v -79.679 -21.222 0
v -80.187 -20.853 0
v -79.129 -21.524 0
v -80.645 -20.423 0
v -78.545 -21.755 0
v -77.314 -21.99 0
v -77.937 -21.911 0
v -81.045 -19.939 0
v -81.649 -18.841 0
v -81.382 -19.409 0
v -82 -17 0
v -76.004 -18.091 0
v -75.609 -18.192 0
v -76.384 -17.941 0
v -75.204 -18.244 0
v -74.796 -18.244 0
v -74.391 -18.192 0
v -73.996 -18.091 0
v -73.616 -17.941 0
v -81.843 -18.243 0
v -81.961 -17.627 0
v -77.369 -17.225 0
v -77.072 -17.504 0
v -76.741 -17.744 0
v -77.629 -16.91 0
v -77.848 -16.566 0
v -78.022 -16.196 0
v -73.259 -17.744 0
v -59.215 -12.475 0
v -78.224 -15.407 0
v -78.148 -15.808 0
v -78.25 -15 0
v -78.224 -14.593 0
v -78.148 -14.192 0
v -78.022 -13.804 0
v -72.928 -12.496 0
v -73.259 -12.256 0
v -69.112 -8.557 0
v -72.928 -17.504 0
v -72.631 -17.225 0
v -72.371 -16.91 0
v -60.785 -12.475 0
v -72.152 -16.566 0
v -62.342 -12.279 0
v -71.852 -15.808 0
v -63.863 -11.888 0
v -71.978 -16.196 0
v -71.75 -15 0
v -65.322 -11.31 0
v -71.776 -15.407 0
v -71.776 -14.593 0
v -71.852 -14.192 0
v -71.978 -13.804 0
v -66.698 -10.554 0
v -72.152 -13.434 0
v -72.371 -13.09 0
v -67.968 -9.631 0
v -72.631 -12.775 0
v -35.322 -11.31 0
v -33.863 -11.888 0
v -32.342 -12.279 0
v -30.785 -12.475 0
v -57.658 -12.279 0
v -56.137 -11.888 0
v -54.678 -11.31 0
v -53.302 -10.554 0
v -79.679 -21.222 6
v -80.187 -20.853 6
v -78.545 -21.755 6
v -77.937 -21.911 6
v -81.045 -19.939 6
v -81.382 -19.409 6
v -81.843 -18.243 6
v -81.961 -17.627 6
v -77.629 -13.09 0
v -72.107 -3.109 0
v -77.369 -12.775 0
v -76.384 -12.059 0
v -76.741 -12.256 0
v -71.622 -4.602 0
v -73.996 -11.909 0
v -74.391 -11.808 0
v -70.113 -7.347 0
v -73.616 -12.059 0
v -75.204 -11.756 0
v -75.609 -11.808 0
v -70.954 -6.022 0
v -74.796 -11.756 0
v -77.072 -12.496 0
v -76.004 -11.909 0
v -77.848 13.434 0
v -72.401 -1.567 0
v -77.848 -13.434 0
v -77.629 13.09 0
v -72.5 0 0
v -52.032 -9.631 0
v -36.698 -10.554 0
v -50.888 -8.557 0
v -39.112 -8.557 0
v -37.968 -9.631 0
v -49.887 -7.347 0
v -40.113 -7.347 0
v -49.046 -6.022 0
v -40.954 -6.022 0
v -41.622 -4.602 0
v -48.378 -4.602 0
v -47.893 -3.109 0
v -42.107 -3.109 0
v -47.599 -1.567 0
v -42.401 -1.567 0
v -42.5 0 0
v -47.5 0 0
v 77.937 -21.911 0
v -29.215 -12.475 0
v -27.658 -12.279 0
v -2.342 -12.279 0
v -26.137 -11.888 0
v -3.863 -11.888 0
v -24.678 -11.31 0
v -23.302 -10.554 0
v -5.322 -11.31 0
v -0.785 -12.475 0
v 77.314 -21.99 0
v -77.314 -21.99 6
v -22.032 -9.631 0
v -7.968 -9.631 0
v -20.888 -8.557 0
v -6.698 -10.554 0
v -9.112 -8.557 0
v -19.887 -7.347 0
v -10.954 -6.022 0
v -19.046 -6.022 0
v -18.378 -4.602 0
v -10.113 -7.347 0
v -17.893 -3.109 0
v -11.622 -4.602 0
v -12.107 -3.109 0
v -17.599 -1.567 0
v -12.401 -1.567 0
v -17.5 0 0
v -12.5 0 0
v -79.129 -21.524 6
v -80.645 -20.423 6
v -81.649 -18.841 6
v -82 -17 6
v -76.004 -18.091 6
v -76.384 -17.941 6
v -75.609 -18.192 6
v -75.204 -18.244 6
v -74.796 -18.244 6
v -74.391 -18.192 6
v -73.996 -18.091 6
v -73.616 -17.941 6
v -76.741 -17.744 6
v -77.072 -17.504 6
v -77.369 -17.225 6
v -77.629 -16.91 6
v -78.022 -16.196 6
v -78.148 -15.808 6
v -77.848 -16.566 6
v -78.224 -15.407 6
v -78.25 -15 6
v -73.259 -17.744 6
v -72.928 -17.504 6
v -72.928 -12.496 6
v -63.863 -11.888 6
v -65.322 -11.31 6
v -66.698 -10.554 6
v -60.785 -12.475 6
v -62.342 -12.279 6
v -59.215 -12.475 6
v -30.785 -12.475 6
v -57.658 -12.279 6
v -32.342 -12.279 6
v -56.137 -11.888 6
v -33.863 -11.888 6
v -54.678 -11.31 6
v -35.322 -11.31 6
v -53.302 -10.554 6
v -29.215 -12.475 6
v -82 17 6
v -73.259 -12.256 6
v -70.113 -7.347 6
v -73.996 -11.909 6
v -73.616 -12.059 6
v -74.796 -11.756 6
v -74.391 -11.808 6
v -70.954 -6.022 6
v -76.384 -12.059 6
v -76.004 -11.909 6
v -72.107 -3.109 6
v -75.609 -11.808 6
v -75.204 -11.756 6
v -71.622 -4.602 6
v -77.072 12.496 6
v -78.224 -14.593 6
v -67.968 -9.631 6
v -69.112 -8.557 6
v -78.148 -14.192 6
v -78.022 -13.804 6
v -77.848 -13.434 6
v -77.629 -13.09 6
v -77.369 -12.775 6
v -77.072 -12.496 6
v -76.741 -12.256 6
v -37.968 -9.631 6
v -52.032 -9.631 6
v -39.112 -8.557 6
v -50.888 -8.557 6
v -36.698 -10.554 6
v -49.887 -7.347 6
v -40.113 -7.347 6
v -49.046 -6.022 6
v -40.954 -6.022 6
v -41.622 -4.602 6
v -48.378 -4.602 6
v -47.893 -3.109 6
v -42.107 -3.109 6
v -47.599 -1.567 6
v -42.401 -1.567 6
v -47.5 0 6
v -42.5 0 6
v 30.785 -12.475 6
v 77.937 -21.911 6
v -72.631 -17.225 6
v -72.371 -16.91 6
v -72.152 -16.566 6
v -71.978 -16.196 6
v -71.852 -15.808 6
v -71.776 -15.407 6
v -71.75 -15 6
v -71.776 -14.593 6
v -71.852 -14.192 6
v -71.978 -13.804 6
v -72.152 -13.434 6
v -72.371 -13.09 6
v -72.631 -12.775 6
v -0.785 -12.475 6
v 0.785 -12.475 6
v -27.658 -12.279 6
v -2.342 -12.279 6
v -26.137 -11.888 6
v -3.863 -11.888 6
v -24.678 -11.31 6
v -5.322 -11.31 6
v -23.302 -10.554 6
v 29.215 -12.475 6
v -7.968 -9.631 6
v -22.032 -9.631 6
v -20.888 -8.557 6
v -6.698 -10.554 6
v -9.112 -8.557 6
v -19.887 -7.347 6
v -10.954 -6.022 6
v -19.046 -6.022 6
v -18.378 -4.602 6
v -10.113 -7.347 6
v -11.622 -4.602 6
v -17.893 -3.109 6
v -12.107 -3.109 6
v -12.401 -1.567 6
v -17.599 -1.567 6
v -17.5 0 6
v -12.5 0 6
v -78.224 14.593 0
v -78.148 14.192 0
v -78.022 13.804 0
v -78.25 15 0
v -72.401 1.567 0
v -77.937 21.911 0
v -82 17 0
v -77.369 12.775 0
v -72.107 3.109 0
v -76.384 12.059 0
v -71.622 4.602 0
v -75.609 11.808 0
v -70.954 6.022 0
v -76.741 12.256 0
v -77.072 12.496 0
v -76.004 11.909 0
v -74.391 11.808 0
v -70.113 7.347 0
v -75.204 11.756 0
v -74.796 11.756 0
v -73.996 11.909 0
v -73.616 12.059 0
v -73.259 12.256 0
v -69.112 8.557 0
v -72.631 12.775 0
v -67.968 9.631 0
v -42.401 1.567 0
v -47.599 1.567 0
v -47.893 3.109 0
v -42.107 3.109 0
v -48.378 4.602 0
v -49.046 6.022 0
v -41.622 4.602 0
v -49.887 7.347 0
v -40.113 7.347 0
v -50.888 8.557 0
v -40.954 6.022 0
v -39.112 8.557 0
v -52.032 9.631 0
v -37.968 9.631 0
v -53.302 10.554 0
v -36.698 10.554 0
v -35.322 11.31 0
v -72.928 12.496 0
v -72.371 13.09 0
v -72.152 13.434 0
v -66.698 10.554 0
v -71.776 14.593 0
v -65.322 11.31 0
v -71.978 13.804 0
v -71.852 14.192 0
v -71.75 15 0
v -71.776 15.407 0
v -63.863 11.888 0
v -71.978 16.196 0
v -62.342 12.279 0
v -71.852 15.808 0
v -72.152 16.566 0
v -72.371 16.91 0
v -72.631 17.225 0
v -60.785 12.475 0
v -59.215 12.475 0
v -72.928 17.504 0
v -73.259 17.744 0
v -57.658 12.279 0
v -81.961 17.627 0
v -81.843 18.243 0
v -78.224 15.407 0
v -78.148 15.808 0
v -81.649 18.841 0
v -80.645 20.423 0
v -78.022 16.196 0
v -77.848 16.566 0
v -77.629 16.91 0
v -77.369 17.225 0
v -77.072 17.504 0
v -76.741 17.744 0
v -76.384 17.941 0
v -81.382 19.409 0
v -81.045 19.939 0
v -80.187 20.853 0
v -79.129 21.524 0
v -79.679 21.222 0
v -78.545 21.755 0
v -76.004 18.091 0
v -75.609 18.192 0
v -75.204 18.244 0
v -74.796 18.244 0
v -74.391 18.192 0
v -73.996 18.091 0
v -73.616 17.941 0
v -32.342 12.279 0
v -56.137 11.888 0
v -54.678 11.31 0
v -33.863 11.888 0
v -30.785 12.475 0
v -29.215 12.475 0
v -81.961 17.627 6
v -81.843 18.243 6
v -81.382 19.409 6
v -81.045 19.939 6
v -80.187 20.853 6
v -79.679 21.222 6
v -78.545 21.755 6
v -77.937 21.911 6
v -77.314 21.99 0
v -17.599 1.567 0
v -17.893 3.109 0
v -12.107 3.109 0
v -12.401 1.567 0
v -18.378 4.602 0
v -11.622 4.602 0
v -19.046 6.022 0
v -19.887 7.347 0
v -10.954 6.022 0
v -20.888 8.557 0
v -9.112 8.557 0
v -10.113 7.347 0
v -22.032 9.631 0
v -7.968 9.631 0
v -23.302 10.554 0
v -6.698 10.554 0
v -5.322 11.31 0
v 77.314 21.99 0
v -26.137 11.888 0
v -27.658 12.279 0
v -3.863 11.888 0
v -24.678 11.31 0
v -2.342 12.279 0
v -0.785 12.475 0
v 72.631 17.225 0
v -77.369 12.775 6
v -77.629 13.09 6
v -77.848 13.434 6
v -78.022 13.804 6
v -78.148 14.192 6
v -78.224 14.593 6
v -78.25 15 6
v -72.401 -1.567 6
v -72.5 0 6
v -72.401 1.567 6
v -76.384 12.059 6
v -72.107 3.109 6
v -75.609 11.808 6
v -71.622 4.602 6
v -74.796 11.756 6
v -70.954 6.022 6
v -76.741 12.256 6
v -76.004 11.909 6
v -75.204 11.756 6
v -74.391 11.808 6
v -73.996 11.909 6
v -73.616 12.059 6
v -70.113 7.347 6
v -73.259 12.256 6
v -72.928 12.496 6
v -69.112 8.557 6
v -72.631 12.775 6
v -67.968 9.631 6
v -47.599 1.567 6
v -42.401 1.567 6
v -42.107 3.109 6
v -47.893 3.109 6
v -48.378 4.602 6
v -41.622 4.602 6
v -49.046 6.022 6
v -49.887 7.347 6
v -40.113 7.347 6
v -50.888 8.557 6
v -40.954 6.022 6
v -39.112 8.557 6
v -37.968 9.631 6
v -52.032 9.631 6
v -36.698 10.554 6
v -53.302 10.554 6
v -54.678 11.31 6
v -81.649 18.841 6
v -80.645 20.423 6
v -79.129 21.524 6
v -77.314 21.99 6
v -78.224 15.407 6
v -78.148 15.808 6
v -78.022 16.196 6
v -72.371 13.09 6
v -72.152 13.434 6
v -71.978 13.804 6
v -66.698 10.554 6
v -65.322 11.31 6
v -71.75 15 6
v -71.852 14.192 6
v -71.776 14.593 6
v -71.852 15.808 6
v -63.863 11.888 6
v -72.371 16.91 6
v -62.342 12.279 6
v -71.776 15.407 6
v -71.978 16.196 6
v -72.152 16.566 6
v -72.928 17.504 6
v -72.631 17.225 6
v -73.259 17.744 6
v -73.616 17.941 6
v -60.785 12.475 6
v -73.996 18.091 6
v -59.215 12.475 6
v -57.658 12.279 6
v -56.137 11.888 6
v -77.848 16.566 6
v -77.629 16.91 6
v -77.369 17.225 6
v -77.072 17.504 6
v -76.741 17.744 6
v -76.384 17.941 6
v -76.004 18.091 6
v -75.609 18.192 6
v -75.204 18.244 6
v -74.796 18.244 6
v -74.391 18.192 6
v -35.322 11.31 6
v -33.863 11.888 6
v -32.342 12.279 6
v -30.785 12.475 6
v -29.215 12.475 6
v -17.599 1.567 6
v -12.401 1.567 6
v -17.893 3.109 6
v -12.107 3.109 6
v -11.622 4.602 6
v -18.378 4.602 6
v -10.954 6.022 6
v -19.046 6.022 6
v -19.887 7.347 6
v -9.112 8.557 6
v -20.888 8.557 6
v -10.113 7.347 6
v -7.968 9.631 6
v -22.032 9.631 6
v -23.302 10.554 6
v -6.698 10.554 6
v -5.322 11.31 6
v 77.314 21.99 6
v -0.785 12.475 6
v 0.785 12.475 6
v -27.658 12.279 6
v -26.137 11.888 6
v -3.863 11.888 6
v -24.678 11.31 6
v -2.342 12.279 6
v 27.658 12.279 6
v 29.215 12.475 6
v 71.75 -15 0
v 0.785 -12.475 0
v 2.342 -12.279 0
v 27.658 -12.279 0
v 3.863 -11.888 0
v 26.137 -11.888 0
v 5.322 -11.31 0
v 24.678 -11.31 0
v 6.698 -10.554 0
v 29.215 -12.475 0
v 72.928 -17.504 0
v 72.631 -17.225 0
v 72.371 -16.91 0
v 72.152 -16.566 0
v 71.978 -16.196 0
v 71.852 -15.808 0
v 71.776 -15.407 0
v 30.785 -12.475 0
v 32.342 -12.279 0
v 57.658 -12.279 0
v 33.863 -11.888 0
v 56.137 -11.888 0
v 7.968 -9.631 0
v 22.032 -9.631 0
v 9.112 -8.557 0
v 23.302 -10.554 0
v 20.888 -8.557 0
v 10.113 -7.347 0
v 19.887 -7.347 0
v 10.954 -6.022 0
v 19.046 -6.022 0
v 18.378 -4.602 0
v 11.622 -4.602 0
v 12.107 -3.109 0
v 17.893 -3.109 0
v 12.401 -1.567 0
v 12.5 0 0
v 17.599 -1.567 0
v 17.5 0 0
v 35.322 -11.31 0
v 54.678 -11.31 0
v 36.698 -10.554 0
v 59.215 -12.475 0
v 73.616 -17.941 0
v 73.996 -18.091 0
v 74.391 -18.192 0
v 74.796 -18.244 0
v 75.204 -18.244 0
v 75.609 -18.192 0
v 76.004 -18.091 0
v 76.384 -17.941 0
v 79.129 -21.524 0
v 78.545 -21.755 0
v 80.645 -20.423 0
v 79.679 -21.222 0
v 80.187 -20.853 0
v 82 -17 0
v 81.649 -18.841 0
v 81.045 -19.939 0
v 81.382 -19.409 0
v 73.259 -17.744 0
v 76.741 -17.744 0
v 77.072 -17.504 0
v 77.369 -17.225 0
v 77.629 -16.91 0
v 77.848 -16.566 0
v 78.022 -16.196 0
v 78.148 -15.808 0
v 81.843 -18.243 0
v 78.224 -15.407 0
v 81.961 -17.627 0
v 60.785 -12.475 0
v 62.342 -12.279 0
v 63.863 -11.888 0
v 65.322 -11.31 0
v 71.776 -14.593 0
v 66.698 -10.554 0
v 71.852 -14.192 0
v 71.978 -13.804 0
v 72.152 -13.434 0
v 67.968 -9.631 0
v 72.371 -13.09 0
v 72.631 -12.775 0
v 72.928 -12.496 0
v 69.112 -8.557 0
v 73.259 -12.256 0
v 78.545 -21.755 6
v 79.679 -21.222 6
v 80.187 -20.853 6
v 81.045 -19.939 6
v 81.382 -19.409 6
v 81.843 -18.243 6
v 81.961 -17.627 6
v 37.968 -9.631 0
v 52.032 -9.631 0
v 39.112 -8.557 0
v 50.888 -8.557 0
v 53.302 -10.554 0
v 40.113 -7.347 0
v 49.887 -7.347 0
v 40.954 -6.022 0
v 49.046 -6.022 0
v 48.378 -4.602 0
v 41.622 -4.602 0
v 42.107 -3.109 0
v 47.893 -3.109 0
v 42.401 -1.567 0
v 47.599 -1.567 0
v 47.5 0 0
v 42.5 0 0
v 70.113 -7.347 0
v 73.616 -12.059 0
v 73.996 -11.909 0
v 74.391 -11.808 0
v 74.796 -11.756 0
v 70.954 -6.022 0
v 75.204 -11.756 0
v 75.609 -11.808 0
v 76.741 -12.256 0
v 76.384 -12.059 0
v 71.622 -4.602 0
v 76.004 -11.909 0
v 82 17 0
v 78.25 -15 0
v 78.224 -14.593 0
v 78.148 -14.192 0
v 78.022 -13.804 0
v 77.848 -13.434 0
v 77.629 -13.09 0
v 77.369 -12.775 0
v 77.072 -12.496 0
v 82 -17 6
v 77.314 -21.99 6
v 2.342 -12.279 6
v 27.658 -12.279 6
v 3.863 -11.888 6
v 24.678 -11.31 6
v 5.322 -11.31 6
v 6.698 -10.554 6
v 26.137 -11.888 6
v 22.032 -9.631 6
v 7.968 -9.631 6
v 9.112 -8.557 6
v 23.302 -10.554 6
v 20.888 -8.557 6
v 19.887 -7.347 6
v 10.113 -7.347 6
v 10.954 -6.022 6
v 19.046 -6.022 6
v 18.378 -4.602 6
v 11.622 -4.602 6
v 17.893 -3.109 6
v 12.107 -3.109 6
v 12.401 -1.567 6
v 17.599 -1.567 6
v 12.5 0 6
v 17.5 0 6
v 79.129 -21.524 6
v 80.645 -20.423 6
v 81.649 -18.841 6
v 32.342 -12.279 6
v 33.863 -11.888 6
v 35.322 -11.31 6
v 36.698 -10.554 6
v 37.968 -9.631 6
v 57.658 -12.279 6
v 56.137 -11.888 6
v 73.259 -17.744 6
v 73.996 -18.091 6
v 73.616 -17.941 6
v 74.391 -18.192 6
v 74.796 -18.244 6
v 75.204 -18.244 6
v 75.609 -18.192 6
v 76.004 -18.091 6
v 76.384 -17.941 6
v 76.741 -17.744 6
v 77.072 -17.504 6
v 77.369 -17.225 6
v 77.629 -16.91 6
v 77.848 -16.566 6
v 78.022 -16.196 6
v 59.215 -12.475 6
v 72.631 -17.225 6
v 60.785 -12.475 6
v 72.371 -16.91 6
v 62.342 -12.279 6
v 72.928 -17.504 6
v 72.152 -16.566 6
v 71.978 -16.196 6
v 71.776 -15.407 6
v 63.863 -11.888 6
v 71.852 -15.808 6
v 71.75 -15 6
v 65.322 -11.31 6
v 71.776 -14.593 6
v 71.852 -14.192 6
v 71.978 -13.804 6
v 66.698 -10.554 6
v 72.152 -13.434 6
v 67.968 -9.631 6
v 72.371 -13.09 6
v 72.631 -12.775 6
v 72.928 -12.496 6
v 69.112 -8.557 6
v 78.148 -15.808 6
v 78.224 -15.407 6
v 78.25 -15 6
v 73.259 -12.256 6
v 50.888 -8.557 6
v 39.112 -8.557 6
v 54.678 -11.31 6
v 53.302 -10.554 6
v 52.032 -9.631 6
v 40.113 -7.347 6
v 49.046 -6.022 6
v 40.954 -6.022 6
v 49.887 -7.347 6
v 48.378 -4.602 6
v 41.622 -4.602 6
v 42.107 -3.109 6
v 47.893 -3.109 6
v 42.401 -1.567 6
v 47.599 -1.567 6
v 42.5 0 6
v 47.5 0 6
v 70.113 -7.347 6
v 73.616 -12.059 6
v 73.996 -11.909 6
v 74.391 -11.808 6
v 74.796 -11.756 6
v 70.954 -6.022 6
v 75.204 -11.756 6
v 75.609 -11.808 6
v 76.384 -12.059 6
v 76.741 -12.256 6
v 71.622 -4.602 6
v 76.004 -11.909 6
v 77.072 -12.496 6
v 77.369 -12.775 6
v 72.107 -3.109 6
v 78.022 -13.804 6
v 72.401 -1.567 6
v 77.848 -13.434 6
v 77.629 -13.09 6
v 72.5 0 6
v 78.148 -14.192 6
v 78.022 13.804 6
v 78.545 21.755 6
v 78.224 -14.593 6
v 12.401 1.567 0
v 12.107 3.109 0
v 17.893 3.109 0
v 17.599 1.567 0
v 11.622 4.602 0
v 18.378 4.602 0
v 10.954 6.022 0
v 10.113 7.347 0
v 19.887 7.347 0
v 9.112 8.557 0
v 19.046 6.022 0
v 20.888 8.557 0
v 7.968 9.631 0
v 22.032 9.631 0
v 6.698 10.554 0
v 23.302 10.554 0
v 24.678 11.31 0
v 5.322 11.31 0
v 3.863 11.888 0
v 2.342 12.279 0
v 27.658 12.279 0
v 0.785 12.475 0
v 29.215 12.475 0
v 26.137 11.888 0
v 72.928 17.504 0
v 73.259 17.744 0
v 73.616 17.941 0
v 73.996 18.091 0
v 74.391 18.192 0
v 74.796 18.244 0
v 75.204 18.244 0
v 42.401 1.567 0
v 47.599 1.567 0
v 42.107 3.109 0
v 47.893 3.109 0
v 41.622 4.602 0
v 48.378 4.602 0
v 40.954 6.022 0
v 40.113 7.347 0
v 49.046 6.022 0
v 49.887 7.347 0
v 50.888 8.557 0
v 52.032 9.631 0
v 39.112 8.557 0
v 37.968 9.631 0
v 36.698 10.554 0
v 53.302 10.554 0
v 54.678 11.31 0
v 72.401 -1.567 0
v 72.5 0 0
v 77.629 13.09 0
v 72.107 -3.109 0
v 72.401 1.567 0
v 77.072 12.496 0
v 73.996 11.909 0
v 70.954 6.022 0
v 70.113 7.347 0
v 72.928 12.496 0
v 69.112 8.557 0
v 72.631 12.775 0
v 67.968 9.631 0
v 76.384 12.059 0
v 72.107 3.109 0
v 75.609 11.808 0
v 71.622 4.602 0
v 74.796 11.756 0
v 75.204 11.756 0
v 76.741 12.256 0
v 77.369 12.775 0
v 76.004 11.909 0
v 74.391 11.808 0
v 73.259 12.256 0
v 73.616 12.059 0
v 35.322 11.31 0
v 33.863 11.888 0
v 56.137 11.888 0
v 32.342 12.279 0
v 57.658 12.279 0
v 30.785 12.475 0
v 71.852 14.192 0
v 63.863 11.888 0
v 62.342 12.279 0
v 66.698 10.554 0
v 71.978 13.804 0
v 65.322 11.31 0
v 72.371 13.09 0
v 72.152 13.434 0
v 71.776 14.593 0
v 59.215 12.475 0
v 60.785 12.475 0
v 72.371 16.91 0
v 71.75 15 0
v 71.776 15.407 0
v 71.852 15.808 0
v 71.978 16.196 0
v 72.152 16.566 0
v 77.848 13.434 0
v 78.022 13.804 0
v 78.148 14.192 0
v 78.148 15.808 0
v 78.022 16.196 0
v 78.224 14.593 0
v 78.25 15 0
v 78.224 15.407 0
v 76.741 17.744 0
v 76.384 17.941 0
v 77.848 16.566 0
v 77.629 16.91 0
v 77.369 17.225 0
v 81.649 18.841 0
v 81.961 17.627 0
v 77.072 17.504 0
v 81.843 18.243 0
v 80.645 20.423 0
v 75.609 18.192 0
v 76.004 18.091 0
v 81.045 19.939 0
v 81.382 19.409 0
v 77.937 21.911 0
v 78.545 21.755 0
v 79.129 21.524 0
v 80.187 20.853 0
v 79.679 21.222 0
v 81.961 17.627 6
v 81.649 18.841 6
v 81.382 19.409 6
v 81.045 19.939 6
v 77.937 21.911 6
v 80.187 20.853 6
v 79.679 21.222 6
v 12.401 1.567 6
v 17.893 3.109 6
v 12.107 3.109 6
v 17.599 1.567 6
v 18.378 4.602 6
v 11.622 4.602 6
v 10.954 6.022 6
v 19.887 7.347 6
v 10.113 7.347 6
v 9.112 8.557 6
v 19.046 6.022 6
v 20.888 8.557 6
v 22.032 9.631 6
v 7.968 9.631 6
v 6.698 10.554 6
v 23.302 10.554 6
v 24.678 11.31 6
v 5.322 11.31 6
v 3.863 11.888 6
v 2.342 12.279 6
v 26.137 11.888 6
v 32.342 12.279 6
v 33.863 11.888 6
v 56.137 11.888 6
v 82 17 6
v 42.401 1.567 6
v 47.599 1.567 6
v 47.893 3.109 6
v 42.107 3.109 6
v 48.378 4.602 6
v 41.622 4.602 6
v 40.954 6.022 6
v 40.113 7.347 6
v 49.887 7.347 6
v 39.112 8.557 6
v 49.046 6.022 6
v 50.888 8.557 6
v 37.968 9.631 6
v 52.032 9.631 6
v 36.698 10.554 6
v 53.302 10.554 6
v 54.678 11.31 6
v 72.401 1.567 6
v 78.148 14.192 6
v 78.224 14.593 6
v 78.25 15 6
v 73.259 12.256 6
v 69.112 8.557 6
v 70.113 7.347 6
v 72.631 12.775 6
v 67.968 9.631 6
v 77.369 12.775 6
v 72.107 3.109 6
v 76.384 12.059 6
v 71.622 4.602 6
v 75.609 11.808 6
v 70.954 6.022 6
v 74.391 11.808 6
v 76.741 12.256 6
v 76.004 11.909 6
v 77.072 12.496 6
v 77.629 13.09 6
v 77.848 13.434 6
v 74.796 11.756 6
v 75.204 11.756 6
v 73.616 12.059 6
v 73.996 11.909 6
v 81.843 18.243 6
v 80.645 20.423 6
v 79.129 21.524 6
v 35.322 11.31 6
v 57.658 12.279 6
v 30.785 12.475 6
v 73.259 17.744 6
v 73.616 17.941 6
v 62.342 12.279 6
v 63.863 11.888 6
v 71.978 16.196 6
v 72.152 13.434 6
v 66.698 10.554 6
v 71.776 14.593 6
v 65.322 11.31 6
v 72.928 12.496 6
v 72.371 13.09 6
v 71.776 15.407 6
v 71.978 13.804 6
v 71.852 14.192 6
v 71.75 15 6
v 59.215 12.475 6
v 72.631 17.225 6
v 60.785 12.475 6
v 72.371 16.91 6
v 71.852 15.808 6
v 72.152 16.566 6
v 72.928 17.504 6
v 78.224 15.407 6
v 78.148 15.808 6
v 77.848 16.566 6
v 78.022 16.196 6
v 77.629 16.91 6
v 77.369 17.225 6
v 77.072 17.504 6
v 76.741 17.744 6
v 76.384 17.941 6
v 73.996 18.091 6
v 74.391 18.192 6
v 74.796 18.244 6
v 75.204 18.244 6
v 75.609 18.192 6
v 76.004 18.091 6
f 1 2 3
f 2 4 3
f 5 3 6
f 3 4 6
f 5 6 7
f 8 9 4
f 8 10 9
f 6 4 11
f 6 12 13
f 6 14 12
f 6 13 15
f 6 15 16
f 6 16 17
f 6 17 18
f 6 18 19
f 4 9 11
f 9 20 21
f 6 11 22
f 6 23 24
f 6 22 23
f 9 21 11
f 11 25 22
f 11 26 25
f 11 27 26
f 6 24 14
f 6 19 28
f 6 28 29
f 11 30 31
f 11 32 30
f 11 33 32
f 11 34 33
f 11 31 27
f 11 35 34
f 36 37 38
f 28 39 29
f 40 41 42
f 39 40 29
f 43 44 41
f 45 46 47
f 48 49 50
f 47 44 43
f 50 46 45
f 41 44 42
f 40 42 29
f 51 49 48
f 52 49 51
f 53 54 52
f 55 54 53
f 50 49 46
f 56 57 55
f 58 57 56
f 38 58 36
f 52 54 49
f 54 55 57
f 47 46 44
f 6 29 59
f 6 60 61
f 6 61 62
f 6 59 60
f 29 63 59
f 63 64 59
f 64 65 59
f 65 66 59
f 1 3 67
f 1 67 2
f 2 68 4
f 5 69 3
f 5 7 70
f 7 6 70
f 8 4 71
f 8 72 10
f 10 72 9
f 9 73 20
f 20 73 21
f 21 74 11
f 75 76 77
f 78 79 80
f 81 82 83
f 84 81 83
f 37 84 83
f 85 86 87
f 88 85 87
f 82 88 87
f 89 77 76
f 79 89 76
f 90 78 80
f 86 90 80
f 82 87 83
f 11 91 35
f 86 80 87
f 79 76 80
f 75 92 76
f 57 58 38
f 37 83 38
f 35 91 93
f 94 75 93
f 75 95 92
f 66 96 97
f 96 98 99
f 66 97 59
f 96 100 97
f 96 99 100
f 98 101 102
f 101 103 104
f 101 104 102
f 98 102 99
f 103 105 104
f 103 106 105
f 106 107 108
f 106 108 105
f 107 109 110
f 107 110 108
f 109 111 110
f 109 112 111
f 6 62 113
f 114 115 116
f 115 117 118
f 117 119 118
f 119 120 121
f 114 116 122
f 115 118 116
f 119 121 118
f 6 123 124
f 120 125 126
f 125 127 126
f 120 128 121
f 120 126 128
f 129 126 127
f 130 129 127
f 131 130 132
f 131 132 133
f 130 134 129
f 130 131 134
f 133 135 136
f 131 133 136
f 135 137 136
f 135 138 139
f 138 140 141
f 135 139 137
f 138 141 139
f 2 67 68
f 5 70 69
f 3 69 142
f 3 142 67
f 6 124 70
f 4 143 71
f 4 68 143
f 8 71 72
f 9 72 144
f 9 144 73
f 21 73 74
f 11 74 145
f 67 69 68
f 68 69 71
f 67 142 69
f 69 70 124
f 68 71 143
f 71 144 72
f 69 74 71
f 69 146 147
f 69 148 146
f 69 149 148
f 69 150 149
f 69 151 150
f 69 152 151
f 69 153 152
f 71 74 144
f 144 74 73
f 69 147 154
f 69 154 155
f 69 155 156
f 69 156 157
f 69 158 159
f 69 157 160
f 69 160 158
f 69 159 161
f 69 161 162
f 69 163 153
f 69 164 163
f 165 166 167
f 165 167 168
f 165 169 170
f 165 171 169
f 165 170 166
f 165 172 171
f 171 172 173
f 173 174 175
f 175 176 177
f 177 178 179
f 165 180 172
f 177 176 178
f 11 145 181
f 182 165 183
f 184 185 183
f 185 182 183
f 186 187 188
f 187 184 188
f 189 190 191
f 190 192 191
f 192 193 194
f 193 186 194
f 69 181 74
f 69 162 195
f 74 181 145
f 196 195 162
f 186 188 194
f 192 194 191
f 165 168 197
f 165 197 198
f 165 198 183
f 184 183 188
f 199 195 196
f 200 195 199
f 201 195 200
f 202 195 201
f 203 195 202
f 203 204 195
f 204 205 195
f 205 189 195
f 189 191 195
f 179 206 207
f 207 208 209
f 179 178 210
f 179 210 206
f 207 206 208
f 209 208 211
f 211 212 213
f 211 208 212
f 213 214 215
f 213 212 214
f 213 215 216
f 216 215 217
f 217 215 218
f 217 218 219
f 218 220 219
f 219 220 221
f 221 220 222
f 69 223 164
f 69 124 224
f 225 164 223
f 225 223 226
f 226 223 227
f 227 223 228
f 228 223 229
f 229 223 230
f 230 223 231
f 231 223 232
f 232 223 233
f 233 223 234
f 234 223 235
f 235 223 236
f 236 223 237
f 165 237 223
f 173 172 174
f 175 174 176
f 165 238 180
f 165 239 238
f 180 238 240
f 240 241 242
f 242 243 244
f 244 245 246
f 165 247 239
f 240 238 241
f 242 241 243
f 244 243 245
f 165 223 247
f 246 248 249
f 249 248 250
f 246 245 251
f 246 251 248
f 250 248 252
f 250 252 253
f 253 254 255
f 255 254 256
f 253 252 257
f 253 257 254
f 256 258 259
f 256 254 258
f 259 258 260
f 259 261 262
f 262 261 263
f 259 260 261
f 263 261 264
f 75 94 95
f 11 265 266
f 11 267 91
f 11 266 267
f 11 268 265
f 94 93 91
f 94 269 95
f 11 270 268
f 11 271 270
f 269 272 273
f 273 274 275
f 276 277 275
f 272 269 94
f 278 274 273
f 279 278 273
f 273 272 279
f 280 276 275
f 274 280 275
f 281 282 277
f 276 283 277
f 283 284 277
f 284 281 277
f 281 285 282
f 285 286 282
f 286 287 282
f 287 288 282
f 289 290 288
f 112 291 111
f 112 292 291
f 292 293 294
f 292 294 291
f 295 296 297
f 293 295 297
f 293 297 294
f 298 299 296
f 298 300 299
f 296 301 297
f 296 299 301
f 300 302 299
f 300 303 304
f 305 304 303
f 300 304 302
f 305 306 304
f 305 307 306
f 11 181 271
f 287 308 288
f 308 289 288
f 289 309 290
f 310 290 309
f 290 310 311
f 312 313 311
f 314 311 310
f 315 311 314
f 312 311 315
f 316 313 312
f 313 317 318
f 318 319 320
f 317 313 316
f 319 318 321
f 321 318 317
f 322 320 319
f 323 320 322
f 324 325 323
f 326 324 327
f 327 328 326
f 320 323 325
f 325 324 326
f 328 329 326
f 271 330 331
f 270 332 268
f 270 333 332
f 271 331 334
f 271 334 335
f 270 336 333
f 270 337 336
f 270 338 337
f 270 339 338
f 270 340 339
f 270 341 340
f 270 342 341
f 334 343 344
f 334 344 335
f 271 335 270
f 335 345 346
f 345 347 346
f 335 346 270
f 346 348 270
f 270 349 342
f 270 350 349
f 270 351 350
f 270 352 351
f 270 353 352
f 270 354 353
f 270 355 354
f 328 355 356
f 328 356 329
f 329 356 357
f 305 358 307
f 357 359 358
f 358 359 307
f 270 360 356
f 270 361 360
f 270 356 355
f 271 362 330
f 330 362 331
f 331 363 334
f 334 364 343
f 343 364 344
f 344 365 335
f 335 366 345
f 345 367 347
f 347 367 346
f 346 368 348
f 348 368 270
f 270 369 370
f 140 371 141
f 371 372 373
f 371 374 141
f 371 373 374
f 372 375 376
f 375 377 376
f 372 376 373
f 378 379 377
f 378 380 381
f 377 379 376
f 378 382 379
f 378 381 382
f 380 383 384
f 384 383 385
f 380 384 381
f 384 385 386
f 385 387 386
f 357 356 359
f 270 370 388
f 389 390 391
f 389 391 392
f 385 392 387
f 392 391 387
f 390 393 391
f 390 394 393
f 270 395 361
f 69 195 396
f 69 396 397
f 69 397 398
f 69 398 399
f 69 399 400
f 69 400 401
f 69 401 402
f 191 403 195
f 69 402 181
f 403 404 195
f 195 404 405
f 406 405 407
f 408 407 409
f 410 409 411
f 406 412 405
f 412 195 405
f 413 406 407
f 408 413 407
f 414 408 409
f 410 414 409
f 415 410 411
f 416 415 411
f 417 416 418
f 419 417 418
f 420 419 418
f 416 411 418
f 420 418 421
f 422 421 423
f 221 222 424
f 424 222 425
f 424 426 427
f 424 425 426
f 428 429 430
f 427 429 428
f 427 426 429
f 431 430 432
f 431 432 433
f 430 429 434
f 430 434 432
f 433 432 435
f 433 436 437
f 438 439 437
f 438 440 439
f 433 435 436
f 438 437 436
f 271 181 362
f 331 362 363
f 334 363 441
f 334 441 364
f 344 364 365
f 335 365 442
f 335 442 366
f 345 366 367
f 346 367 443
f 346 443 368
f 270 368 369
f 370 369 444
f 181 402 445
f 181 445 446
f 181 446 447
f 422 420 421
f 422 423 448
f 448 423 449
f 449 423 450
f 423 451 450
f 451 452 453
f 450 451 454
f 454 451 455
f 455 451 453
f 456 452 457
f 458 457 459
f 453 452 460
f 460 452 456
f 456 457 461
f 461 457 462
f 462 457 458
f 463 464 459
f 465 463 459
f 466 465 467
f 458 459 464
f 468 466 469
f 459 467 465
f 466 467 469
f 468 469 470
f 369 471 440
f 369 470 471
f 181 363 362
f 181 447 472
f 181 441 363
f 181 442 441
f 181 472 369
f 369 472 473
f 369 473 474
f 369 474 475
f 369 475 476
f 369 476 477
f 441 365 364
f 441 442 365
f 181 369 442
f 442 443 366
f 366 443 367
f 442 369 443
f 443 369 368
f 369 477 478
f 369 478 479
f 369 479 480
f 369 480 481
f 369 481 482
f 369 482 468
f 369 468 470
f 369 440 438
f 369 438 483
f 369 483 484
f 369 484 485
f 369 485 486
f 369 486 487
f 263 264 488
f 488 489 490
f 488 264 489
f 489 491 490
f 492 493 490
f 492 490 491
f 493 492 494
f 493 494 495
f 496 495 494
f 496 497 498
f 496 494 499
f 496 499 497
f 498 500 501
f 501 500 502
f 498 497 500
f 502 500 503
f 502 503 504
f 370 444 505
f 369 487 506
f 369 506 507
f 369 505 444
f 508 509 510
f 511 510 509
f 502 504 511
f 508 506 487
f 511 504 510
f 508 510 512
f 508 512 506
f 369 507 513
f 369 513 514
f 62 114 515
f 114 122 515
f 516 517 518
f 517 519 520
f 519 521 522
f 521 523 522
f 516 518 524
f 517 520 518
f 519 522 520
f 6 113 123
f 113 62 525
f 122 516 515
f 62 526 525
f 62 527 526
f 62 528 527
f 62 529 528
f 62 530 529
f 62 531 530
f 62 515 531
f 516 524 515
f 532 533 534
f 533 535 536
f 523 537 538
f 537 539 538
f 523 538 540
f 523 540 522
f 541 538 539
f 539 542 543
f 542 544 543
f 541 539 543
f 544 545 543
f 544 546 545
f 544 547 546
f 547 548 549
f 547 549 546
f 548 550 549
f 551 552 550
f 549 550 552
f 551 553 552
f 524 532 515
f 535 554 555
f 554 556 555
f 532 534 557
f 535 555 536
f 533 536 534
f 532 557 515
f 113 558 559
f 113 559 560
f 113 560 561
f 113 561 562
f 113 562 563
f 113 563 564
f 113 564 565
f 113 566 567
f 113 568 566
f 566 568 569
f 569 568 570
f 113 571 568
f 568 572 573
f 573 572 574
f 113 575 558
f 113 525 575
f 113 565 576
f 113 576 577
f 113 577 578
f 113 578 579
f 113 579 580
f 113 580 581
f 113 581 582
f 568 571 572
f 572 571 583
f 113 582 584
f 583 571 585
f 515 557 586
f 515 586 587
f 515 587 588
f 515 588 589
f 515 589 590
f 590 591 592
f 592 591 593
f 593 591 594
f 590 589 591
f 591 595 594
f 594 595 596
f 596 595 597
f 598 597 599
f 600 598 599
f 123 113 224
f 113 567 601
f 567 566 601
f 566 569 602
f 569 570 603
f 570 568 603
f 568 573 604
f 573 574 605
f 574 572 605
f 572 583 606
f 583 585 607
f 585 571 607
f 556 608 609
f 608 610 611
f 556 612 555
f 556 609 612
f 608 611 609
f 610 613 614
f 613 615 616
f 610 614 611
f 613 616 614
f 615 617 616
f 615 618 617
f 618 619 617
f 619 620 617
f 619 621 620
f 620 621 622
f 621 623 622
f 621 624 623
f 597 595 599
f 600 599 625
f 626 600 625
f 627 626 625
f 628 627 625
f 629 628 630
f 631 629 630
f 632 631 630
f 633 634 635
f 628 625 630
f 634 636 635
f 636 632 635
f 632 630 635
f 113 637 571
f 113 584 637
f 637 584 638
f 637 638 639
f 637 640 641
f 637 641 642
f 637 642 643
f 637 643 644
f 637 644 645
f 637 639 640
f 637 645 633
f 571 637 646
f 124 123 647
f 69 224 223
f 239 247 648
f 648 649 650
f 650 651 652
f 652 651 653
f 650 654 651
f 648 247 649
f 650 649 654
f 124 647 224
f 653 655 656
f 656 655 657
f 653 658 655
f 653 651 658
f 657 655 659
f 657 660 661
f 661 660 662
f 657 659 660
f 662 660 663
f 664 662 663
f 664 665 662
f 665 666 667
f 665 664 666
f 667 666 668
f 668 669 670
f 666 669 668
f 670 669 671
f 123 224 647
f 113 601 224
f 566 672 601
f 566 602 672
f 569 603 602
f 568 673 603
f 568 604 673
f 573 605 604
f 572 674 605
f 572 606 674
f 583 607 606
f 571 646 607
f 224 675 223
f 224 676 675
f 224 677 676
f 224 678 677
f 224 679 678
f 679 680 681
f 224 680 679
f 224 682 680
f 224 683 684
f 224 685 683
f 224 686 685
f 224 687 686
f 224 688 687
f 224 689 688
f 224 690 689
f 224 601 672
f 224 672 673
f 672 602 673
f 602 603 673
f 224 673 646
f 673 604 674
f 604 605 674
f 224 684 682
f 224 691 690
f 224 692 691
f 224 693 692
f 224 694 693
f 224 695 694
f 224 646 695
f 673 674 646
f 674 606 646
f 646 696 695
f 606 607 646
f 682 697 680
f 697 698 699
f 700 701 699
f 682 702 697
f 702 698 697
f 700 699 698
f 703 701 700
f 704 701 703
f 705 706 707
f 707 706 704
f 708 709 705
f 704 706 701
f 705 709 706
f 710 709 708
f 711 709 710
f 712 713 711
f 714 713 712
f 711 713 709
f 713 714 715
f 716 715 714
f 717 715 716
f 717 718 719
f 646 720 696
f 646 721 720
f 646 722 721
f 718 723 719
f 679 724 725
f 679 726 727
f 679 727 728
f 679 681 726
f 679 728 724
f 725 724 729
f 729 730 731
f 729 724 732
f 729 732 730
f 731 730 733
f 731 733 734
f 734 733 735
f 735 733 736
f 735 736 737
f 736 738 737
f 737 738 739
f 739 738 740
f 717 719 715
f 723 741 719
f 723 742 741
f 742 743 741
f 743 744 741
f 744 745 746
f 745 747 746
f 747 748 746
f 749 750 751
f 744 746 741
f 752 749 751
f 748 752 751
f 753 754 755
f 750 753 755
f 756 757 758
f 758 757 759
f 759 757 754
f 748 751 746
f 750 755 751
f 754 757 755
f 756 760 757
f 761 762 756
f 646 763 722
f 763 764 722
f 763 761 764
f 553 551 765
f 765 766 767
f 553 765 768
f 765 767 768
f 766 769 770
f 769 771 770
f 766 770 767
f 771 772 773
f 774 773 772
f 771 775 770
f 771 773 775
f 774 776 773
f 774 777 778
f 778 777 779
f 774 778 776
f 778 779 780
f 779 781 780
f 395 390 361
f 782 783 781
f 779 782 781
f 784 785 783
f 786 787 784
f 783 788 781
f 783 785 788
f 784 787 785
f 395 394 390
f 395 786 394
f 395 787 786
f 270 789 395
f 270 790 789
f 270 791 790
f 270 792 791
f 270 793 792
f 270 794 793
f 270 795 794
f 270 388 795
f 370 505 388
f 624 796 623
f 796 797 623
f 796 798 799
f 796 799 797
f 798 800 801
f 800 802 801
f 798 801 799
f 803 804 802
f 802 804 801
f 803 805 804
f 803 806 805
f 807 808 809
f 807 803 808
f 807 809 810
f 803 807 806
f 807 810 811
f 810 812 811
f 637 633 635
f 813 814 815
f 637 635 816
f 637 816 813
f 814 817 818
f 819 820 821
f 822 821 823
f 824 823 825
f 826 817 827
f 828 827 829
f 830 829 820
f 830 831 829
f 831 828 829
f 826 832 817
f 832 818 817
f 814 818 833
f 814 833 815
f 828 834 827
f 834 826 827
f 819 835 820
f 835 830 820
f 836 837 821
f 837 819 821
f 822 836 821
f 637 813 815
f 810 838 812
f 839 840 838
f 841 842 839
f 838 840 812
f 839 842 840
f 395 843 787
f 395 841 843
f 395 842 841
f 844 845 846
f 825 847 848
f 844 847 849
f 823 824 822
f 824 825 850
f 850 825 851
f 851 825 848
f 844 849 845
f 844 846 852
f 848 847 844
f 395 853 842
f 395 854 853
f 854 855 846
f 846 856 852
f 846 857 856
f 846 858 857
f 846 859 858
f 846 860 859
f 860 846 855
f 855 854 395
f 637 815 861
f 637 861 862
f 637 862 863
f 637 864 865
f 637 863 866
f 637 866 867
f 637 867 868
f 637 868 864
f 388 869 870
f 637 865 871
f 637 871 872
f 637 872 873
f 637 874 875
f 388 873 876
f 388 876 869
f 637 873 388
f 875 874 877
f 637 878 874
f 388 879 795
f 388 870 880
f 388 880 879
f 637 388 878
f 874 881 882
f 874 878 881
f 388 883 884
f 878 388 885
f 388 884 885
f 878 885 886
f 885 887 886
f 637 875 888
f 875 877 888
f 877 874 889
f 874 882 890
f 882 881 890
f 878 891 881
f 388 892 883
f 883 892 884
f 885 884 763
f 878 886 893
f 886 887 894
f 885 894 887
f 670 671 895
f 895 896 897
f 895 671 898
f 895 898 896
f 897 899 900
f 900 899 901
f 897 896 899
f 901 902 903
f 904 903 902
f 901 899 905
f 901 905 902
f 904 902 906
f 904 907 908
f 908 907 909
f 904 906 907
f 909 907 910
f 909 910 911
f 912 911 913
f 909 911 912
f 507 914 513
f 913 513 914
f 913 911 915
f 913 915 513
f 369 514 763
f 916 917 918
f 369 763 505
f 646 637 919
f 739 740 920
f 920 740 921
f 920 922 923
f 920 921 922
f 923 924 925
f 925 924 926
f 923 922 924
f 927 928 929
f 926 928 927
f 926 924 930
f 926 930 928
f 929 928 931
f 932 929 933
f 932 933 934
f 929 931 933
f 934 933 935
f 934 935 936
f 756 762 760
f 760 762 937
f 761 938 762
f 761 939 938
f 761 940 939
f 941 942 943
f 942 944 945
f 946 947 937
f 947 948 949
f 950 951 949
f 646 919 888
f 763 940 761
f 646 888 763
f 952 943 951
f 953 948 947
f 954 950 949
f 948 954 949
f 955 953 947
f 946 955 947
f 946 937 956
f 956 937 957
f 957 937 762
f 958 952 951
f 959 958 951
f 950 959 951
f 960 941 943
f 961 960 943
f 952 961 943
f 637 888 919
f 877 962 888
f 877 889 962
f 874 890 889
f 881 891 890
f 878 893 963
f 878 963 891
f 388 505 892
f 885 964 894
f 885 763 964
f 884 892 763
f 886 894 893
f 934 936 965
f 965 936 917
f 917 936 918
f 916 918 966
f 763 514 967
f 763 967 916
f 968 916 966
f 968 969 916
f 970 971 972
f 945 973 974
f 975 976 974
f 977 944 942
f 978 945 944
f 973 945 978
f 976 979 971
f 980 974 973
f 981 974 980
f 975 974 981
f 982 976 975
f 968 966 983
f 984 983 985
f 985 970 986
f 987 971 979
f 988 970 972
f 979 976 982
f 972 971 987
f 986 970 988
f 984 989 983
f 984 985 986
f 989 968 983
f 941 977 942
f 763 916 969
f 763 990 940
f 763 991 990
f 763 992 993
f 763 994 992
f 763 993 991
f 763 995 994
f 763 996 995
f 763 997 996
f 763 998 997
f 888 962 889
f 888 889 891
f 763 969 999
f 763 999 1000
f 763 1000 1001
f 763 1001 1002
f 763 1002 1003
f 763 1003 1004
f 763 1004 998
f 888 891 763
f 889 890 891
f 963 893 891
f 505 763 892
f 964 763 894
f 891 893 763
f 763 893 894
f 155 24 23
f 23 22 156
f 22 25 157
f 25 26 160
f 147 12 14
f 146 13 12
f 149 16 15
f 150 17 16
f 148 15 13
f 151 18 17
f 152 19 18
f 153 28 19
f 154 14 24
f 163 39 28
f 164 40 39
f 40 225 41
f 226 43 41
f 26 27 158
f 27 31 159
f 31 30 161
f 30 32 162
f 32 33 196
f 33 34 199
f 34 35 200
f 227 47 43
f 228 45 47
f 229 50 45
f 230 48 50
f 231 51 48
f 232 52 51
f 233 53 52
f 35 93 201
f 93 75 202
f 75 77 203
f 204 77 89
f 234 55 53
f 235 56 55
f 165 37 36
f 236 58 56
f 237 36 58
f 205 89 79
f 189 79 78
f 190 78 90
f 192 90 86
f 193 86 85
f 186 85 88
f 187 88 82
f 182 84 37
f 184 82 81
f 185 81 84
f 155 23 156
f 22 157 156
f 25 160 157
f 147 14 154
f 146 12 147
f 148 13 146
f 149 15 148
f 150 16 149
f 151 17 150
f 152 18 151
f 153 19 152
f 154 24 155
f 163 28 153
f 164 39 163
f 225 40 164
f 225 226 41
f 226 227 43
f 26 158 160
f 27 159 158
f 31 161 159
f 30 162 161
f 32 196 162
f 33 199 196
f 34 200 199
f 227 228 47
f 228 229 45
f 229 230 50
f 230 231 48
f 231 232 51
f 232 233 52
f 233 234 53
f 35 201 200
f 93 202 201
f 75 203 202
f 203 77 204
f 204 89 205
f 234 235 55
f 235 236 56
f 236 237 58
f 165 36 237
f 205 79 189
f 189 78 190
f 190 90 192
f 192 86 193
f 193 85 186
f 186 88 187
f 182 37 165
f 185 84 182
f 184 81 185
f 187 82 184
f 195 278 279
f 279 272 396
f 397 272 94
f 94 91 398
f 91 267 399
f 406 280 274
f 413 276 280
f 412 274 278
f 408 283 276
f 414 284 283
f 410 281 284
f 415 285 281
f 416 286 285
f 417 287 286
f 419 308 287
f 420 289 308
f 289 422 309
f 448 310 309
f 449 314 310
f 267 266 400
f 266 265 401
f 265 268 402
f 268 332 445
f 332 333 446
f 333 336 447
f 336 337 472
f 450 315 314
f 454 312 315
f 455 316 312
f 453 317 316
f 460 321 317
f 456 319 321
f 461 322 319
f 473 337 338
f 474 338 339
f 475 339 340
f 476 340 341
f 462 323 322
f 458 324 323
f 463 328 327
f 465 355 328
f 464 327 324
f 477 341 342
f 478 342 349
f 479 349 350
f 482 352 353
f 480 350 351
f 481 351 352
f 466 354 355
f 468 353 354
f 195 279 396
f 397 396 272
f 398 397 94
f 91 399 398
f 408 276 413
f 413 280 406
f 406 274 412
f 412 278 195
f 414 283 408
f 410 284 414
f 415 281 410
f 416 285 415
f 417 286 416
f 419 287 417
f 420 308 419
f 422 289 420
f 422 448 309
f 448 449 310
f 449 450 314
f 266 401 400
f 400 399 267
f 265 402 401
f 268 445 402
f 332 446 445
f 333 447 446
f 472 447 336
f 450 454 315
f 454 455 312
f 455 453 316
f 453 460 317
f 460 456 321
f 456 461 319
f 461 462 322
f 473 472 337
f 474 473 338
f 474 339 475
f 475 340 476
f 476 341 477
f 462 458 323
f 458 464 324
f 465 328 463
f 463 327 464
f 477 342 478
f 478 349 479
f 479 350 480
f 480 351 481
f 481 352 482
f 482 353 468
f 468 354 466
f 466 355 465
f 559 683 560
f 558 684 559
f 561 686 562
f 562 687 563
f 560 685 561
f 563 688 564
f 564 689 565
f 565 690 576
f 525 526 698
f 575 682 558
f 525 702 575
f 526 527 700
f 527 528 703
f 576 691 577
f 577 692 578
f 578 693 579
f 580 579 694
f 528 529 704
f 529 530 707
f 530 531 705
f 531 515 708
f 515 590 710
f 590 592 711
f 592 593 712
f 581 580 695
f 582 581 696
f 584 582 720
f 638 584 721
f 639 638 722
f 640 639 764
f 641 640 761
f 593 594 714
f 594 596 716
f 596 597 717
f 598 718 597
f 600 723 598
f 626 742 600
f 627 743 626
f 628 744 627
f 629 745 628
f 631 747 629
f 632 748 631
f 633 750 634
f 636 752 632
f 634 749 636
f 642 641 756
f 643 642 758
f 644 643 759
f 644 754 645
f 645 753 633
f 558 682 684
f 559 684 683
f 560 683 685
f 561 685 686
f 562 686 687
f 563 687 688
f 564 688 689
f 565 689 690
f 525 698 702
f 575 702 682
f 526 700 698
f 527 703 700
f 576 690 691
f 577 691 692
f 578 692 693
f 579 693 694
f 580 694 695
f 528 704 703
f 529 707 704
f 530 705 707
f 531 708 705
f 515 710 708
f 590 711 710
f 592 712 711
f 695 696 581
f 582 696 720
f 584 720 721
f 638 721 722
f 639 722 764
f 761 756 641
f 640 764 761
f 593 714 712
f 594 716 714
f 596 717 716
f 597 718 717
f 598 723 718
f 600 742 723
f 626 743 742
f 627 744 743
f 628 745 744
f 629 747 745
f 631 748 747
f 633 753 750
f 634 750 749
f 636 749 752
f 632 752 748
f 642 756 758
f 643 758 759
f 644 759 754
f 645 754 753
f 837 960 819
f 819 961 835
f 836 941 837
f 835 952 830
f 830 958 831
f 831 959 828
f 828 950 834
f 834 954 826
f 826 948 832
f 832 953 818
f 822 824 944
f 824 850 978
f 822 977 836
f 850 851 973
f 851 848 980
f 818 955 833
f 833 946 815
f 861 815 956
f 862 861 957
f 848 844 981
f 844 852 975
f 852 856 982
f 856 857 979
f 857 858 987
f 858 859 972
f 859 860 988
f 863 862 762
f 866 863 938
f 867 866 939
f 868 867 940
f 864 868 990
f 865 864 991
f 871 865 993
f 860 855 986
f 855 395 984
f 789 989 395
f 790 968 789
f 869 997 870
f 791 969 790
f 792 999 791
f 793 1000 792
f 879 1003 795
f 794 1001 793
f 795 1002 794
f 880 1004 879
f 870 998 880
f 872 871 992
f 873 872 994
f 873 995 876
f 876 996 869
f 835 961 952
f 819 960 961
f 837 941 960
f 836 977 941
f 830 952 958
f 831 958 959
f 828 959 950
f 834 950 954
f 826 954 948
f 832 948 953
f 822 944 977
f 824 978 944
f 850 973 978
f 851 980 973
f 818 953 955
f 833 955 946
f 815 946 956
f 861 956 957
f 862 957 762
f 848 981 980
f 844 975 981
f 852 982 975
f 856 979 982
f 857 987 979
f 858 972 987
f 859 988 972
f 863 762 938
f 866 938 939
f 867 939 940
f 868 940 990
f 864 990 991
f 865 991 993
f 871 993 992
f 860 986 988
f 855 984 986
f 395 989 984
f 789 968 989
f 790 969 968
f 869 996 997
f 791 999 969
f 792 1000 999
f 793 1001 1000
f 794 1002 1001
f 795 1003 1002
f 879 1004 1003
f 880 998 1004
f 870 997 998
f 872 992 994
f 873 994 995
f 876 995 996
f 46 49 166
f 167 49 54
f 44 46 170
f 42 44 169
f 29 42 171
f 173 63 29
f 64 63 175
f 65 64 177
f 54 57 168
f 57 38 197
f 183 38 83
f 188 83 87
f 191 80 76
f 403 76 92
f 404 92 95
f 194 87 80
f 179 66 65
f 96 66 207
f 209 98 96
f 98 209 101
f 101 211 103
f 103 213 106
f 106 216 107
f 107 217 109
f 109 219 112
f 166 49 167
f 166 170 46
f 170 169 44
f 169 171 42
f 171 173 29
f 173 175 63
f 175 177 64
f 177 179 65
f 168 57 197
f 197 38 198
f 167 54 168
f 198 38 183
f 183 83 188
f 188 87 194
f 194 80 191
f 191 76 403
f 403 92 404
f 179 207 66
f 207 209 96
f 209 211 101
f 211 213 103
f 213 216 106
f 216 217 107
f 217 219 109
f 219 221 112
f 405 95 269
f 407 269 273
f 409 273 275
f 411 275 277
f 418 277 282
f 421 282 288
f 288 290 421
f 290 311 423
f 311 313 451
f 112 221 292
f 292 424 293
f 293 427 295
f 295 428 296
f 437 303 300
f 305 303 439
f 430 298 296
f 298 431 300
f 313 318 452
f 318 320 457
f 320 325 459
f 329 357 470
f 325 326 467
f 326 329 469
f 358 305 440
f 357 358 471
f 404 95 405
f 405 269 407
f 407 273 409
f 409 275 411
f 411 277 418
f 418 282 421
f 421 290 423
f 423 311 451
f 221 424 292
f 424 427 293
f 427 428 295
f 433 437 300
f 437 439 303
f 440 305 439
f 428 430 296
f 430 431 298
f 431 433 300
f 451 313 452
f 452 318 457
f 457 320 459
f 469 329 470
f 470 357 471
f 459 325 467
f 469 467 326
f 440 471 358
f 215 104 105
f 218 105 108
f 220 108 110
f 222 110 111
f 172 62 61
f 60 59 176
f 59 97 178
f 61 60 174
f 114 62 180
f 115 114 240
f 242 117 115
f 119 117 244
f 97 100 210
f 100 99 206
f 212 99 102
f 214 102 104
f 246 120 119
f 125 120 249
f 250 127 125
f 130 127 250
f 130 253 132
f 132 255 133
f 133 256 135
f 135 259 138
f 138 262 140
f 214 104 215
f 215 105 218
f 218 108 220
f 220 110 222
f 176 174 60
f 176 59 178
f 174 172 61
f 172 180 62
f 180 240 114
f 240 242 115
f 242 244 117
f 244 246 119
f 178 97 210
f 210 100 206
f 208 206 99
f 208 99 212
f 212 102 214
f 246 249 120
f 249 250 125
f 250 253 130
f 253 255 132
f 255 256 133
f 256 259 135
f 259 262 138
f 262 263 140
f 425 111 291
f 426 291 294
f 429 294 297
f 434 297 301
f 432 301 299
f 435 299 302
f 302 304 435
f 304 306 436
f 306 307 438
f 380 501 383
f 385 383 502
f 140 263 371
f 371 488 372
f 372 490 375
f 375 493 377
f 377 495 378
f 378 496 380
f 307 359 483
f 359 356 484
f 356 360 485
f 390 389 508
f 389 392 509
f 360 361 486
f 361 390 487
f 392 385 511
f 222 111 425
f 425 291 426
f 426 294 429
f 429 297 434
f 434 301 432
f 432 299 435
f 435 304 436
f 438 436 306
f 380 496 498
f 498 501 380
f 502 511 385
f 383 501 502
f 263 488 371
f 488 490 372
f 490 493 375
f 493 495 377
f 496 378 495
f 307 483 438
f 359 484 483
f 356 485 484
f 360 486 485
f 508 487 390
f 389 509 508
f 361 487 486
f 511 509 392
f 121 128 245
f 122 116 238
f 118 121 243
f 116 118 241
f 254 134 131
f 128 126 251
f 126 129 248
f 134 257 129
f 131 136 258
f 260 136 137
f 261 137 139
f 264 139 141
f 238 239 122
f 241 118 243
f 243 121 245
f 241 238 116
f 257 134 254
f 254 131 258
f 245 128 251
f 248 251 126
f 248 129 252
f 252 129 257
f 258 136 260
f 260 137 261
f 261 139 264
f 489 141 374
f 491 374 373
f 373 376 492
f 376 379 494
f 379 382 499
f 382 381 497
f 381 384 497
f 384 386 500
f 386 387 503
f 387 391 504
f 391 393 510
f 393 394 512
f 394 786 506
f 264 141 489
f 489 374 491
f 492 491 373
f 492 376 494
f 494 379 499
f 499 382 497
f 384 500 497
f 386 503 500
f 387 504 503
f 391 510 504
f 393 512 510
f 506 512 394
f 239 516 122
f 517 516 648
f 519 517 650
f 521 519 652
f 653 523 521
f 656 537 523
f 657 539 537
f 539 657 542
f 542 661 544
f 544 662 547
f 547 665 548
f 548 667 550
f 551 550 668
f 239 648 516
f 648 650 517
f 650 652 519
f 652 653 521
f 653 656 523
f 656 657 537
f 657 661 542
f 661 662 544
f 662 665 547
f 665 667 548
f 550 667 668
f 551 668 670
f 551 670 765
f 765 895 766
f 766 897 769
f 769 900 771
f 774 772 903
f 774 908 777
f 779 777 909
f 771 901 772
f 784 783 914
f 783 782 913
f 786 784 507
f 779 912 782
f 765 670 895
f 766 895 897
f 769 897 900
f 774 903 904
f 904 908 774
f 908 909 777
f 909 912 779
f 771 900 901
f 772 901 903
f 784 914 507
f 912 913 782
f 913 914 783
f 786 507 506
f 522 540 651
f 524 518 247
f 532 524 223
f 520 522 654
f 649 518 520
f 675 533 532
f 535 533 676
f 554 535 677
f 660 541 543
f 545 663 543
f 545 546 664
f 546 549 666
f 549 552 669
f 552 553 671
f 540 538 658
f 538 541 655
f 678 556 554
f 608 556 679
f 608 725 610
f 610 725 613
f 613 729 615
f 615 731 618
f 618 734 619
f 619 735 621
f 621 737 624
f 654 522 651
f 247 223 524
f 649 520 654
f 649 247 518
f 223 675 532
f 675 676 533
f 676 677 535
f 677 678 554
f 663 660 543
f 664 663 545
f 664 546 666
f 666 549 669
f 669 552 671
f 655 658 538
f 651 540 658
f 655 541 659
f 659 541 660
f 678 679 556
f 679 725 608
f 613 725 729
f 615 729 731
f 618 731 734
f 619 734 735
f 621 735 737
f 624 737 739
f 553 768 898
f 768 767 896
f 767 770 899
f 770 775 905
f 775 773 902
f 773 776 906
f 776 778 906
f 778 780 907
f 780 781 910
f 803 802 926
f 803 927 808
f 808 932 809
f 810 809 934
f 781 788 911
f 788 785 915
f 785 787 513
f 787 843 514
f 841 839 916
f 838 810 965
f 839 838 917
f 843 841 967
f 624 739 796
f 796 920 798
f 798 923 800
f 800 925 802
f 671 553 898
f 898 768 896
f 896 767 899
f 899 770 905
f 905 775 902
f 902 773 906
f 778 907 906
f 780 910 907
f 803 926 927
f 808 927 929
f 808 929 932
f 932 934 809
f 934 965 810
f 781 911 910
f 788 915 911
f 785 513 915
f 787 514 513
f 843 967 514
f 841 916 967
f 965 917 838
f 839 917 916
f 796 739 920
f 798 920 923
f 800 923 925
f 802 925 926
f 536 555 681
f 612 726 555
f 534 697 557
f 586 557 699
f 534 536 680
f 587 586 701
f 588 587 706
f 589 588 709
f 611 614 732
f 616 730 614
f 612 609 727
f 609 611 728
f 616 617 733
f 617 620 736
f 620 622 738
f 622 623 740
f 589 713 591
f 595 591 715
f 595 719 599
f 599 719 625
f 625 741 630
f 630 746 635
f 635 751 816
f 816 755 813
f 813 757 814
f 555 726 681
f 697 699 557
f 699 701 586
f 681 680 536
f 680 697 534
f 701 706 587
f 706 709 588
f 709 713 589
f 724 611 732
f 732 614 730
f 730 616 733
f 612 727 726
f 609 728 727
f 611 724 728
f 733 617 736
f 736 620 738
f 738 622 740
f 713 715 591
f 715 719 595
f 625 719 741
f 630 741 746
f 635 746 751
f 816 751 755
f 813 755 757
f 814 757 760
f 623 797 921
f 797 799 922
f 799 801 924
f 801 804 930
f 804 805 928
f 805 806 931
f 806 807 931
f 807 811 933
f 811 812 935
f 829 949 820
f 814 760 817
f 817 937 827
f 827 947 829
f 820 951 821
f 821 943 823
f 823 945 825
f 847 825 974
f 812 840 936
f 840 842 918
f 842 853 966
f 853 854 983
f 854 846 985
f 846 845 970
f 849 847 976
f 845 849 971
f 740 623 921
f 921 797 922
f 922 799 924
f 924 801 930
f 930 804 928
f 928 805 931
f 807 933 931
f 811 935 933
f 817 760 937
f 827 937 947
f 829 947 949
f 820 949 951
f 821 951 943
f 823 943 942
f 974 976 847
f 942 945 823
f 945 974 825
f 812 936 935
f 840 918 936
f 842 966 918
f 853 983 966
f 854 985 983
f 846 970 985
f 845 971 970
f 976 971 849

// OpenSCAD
$fn = 50;

difference() {
	union() {
		hull() {
			translate(v = [-77.0, 17.0, 0]) {
				cylinder(h = 6, r = 5);
			}
			translate(v = [77.0, 17.0, 0]) {
				cylinder(h = 6, r = 5);
			}
			translate(v = [-77.0, -17.0, 0]) {
				cylinder(h = 6, r = 5);
			}
			translate(v = [77.0, -17.0, 0]) {
				cylinder(h = 6, r = 5);
			}
		}
	}
	union() {
		translate(v = [-75.0, -15.0, -100.0]) {
			cylinder(h = 200, r = 3.25);
		}
		translate(v = [-75.0, 15.0, -100.0]) {
			cylinder(h = 200, r = 3.25);
		}
		translate(v = [75.0, -15.0, -100.0]) {
			cylinder(h = 200, r = 3.25);
		}
		translate(v = [75.0, 15.0, -100.0]) {
			cylinder(h = 200, r = 3.25);
		}
		translate(v = [-75.0, -15.0, -100.0]) {
			cylinder(h = 200, r = 1.8);
		}
		translate(v = [-75.0, 15.0, -100.0]) {
			cylinder(h = 200, r = 1.8);
		}
		translate(v = [75.0, -15.0, -100.0]) {
			cylinder(h = 200, r = 1.8);
		}
		translate(v = [75.0, 15.0, -100.0]) {
			cylinder(h = 200, r = 1.8);
		}
		translate(v = [-60.0, 0, 0.0]) {
			cylinder(h = 6, r = 12.5);
		}
		translate(v = [-30.0, 0, 0.0]) {
			cylinder(h = 6, r = 12.5);
		}
		cylinder(h = 6, r = 12.5);
		translate(v = [30.0, 0, 0.0]) {
			cylinder(h = 6, r = 12.5);
		}
		translate(v = [60.0, 0, 0.0]) {
			cylinder(h = 6, r = 12.5);
		}
	}
}
